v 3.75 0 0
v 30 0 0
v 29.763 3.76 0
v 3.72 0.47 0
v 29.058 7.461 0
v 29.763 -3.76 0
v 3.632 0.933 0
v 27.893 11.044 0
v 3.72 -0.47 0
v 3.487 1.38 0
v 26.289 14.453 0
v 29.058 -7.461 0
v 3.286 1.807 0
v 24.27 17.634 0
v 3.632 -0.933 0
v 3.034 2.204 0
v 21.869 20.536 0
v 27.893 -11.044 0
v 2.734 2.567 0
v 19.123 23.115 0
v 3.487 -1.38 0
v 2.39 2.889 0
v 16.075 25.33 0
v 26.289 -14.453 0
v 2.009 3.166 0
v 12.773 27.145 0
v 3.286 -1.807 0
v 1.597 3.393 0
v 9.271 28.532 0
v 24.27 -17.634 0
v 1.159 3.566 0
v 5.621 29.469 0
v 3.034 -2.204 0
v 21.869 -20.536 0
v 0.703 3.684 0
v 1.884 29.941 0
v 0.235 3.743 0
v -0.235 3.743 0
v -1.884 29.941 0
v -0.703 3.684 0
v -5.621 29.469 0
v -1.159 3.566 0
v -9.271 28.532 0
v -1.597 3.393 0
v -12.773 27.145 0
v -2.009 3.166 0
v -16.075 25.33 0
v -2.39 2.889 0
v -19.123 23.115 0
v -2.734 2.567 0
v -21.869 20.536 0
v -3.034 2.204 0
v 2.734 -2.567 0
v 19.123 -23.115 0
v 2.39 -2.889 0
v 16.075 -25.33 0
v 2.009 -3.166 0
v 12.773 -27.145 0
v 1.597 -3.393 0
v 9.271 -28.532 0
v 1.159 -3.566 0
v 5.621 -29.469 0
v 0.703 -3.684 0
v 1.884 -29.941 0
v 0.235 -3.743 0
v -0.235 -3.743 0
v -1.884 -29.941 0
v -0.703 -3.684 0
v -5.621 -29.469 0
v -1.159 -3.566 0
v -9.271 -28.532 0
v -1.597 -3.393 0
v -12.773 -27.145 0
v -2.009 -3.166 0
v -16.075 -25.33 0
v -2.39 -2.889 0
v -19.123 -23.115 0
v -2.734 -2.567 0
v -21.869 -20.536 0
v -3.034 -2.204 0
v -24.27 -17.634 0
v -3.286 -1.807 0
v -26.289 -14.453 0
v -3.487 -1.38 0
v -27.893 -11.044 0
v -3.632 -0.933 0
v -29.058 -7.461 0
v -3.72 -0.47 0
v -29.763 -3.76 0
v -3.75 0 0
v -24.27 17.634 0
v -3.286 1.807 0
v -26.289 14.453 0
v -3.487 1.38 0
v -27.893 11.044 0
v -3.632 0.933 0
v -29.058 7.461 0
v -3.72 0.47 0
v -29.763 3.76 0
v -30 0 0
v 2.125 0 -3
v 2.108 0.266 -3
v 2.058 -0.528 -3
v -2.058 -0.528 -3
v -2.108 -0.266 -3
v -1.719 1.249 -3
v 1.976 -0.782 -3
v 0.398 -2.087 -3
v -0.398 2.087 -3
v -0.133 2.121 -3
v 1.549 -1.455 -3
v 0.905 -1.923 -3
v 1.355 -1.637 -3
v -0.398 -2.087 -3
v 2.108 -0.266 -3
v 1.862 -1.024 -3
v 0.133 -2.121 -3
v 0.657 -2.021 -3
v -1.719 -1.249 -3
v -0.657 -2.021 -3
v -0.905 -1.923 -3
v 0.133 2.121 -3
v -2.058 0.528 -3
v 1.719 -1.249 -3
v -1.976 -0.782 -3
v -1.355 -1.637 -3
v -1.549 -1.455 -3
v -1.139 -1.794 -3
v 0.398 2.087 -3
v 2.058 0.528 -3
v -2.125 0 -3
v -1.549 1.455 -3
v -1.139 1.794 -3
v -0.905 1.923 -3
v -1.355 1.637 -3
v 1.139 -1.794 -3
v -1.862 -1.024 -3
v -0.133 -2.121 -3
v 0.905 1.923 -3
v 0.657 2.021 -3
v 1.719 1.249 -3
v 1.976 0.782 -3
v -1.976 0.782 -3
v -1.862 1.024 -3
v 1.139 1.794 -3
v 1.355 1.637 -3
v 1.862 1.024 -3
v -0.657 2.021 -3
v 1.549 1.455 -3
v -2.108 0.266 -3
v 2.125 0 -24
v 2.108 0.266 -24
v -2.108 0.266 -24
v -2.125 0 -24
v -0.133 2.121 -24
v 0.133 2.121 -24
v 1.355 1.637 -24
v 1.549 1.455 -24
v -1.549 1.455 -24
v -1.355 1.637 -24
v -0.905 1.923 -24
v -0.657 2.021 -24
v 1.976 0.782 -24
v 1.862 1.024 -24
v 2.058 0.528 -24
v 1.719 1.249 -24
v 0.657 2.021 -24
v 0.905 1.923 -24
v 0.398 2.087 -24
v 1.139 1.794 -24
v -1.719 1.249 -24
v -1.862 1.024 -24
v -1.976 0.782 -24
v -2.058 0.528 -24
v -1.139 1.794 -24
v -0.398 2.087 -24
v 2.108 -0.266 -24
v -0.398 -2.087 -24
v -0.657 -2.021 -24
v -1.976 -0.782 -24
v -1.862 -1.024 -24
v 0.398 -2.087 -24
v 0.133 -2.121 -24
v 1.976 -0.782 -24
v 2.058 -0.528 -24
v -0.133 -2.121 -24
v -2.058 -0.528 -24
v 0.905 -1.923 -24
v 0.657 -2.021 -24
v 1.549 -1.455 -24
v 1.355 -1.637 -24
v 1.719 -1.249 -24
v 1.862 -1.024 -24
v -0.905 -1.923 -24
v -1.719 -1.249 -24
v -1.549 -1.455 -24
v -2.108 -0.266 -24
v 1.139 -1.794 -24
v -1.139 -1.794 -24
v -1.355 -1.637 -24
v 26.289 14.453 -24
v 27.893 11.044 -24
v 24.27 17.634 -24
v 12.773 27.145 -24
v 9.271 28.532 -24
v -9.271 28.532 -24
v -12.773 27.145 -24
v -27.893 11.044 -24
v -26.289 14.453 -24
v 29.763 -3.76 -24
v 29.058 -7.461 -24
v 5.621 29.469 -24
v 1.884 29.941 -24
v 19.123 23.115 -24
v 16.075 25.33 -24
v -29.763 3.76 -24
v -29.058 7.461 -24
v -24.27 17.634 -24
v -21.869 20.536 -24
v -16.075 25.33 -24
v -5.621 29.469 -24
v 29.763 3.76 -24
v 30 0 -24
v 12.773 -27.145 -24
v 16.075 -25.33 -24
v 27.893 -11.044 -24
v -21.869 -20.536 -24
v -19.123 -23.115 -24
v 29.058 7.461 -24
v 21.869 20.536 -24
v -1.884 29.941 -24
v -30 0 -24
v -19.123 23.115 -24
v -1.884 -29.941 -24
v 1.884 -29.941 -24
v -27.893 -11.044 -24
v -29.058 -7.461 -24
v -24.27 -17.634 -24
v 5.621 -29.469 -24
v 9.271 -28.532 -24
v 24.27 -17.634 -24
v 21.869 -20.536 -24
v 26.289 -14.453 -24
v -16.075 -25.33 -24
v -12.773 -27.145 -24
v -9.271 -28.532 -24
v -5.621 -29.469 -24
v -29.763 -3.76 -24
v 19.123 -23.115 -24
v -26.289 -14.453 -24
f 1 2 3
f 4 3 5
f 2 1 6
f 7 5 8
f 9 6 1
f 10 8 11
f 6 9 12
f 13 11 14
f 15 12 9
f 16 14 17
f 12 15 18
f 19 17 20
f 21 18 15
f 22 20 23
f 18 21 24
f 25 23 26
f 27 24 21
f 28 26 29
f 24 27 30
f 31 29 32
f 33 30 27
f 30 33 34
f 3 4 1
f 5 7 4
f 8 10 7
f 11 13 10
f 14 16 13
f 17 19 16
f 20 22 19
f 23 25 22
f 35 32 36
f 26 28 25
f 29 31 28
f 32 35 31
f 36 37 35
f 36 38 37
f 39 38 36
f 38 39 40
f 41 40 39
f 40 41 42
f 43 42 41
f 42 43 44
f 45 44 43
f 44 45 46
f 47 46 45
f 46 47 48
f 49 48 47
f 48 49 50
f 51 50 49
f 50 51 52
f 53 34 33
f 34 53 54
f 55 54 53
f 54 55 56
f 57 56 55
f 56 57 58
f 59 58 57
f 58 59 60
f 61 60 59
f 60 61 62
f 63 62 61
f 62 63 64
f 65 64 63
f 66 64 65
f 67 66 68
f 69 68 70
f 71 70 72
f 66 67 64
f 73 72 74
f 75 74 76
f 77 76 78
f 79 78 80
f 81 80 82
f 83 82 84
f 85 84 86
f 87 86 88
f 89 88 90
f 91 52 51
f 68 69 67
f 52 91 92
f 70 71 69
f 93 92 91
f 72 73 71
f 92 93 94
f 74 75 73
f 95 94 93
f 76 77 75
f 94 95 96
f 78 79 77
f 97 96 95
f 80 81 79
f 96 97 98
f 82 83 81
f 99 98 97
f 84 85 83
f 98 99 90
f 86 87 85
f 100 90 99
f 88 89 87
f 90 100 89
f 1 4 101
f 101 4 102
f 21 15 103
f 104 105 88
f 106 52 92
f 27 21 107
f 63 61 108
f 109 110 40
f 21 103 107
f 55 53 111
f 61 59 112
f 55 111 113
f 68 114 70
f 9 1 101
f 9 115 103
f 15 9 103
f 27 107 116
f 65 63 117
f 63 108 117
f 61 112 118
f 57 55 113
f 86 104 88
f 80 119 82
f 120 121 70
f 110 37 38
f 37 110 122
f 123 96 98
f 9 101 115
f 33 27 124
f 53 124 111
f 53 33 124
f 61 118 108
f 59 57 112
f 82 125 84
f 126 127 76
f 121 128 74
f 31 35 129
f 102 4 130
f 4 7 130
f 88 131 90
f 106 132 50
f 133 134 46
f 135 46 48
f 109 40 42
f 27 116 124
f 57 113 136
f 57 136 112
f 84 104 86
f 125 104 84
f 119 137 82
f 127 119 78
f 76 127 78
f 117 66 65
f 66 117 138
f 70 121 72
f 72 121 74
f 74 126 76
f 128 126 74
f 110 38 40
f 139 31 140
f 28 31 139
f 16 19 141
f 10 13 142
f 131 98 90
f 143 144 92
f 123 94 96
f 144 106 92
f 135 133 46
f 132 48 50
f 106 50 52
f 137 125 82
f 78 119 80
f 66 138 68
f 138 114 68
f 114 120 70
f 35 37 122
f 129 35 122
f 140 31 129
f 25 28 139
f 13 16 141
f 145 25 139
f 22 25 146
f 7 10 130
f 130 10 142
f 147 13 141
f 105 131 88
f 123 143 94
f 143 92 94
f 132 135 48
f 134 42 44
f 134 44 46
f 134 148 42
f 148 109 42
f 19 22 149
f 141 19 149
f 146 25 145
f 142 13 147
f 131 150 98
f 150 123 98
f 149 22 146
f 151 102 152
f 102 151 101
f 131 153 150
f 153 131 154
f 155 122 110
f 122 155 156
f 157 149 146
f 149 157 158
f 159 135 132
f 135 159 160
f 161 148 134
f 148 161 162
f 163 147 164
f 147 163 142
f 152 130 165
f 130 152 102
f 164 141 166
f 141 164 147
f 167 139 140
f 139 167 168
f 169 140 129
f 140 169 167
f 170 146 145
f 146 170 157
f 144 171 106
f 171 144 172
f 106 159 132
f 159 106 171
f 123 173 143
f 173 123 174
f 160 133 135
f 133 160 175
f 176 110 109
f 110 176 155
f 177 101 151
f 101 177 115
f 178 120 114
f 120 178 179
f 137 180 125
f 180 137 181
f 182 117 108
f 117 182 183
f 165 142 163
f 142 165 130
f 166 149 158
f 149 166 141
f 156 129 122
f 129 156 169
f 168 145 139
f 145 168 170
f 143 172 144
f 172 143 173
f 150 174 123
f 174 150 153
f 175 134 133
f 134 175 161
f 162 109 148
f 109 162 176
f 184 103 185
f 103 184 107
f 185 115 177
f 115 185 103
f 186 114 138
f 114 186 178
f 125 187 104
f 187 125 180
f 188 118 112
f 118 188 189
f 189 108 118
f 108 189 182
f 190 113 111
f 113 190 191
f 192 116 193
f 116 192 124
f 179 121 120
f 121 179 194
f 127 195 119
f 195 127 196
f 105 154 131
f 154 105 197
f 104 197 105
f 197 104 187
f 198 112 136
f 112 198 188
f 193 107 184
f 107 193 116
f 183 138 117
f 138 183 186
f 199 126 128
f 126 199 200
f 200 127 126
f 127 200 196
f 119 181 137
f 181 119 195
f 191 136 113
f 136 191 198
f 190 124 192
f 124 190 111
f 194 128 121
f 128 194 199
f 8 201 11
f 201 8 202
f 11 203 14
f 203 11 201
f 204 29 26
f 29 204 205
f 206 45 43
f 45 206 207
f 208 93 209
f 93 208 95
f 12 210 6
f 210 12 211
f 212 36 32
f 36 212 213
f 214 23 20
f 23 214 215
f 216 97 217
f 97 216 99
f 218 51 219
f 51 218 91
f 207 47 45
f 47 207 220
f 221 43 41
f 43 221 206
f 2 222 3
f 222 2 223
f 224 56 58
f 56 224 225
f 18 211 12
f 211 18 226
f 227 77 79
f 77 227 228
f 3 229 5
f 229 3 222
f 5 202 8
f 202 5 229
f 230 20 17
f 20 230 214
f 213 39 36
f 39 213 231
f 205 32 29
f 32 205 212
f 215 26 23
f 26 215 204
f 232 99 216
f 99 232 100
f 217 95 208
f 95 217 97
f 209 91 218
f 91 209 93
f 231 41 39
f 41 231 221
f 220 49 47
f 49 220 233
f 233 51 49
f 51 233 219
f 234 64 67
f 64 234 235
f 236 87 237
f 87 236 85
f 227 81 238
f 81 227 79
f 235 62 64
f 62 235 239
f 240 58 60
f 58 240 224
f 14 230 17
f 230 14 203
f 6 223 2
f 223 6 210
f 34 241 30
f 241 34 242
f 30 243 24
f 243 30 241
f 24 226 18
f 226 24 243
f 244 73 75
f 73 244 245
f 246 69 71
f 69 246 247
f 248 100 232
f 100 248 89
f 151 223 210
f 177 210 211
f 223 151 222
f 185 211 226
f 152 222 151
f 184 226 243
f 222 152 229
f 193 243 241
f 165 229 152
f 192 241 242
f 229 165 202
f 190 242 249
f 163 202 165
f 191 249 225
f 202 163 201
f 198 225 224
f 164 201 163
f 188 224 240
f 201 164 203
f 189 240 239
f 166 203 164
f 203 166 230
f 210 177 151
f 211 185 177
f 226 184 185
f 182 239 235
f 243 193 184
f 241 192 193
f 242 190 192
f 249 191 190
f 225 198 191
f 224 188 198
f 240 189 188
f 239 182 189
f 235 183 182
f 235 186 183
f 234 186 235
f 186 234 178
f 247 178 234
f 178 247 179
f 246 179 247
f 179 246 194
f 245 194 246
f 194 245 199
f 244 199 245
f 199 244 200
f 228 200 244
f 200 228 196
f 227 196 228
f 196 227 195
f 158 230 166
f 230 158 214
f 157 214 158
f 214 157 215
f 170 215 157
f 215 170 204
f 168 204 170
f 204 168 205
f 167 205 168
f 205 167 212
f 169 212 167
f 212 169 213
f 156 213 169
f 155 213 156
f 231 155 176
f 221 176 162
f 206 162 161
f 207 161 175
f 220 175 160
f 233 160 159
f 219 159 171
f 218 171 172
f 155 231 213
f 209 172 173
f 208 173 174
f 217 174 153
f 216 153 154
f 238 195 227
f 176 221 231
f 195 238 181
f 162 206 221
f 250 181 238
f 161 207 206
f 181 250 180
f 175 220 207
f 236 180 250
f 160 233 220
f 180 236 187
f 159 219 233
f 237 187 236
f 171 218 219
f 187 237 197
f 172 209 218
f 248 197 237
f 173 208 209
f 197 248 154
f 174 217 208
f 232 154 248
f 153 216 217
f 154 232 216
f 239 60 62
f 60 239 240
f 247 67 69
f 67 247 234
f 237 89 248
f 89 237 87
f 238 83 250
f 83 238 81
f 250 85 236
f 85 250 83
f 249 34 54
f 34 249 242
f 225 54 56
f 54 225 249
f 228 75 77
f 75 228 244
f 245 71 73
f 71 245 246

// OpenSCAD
$fn = 50;


difference() {
	union() {
		translate(v = [0, 0, -24.0000000000]) {
			cylinder(h = 24, r = 30.0000000000);
		}
	}
	union() {
		translate(v = [0, 0, 0]) {
			rotate(a = [0, 0, 0]) {
				difference() {
					union() {
						translate(v = [0, 0, -27.0000000000]) {
							cylinder(h = 27, r = 2.0000000000);
						}
						translate(v = [0, 0, -3]) {
							cylinder(h = 3, r1 = 2.1250000000, r2 = 3.7500000000);
						}
						translate(v = [0, 0, -27.0000000000]) {
							cylinder(h = 27, r = 2.1250000000);
						}
						translate(v = [0, 0, -27.0000000000]) {
							cylinder(h = 27, r = 2.0000000000);
						}
					}
					union();
				}
			}
		}
	}
}
